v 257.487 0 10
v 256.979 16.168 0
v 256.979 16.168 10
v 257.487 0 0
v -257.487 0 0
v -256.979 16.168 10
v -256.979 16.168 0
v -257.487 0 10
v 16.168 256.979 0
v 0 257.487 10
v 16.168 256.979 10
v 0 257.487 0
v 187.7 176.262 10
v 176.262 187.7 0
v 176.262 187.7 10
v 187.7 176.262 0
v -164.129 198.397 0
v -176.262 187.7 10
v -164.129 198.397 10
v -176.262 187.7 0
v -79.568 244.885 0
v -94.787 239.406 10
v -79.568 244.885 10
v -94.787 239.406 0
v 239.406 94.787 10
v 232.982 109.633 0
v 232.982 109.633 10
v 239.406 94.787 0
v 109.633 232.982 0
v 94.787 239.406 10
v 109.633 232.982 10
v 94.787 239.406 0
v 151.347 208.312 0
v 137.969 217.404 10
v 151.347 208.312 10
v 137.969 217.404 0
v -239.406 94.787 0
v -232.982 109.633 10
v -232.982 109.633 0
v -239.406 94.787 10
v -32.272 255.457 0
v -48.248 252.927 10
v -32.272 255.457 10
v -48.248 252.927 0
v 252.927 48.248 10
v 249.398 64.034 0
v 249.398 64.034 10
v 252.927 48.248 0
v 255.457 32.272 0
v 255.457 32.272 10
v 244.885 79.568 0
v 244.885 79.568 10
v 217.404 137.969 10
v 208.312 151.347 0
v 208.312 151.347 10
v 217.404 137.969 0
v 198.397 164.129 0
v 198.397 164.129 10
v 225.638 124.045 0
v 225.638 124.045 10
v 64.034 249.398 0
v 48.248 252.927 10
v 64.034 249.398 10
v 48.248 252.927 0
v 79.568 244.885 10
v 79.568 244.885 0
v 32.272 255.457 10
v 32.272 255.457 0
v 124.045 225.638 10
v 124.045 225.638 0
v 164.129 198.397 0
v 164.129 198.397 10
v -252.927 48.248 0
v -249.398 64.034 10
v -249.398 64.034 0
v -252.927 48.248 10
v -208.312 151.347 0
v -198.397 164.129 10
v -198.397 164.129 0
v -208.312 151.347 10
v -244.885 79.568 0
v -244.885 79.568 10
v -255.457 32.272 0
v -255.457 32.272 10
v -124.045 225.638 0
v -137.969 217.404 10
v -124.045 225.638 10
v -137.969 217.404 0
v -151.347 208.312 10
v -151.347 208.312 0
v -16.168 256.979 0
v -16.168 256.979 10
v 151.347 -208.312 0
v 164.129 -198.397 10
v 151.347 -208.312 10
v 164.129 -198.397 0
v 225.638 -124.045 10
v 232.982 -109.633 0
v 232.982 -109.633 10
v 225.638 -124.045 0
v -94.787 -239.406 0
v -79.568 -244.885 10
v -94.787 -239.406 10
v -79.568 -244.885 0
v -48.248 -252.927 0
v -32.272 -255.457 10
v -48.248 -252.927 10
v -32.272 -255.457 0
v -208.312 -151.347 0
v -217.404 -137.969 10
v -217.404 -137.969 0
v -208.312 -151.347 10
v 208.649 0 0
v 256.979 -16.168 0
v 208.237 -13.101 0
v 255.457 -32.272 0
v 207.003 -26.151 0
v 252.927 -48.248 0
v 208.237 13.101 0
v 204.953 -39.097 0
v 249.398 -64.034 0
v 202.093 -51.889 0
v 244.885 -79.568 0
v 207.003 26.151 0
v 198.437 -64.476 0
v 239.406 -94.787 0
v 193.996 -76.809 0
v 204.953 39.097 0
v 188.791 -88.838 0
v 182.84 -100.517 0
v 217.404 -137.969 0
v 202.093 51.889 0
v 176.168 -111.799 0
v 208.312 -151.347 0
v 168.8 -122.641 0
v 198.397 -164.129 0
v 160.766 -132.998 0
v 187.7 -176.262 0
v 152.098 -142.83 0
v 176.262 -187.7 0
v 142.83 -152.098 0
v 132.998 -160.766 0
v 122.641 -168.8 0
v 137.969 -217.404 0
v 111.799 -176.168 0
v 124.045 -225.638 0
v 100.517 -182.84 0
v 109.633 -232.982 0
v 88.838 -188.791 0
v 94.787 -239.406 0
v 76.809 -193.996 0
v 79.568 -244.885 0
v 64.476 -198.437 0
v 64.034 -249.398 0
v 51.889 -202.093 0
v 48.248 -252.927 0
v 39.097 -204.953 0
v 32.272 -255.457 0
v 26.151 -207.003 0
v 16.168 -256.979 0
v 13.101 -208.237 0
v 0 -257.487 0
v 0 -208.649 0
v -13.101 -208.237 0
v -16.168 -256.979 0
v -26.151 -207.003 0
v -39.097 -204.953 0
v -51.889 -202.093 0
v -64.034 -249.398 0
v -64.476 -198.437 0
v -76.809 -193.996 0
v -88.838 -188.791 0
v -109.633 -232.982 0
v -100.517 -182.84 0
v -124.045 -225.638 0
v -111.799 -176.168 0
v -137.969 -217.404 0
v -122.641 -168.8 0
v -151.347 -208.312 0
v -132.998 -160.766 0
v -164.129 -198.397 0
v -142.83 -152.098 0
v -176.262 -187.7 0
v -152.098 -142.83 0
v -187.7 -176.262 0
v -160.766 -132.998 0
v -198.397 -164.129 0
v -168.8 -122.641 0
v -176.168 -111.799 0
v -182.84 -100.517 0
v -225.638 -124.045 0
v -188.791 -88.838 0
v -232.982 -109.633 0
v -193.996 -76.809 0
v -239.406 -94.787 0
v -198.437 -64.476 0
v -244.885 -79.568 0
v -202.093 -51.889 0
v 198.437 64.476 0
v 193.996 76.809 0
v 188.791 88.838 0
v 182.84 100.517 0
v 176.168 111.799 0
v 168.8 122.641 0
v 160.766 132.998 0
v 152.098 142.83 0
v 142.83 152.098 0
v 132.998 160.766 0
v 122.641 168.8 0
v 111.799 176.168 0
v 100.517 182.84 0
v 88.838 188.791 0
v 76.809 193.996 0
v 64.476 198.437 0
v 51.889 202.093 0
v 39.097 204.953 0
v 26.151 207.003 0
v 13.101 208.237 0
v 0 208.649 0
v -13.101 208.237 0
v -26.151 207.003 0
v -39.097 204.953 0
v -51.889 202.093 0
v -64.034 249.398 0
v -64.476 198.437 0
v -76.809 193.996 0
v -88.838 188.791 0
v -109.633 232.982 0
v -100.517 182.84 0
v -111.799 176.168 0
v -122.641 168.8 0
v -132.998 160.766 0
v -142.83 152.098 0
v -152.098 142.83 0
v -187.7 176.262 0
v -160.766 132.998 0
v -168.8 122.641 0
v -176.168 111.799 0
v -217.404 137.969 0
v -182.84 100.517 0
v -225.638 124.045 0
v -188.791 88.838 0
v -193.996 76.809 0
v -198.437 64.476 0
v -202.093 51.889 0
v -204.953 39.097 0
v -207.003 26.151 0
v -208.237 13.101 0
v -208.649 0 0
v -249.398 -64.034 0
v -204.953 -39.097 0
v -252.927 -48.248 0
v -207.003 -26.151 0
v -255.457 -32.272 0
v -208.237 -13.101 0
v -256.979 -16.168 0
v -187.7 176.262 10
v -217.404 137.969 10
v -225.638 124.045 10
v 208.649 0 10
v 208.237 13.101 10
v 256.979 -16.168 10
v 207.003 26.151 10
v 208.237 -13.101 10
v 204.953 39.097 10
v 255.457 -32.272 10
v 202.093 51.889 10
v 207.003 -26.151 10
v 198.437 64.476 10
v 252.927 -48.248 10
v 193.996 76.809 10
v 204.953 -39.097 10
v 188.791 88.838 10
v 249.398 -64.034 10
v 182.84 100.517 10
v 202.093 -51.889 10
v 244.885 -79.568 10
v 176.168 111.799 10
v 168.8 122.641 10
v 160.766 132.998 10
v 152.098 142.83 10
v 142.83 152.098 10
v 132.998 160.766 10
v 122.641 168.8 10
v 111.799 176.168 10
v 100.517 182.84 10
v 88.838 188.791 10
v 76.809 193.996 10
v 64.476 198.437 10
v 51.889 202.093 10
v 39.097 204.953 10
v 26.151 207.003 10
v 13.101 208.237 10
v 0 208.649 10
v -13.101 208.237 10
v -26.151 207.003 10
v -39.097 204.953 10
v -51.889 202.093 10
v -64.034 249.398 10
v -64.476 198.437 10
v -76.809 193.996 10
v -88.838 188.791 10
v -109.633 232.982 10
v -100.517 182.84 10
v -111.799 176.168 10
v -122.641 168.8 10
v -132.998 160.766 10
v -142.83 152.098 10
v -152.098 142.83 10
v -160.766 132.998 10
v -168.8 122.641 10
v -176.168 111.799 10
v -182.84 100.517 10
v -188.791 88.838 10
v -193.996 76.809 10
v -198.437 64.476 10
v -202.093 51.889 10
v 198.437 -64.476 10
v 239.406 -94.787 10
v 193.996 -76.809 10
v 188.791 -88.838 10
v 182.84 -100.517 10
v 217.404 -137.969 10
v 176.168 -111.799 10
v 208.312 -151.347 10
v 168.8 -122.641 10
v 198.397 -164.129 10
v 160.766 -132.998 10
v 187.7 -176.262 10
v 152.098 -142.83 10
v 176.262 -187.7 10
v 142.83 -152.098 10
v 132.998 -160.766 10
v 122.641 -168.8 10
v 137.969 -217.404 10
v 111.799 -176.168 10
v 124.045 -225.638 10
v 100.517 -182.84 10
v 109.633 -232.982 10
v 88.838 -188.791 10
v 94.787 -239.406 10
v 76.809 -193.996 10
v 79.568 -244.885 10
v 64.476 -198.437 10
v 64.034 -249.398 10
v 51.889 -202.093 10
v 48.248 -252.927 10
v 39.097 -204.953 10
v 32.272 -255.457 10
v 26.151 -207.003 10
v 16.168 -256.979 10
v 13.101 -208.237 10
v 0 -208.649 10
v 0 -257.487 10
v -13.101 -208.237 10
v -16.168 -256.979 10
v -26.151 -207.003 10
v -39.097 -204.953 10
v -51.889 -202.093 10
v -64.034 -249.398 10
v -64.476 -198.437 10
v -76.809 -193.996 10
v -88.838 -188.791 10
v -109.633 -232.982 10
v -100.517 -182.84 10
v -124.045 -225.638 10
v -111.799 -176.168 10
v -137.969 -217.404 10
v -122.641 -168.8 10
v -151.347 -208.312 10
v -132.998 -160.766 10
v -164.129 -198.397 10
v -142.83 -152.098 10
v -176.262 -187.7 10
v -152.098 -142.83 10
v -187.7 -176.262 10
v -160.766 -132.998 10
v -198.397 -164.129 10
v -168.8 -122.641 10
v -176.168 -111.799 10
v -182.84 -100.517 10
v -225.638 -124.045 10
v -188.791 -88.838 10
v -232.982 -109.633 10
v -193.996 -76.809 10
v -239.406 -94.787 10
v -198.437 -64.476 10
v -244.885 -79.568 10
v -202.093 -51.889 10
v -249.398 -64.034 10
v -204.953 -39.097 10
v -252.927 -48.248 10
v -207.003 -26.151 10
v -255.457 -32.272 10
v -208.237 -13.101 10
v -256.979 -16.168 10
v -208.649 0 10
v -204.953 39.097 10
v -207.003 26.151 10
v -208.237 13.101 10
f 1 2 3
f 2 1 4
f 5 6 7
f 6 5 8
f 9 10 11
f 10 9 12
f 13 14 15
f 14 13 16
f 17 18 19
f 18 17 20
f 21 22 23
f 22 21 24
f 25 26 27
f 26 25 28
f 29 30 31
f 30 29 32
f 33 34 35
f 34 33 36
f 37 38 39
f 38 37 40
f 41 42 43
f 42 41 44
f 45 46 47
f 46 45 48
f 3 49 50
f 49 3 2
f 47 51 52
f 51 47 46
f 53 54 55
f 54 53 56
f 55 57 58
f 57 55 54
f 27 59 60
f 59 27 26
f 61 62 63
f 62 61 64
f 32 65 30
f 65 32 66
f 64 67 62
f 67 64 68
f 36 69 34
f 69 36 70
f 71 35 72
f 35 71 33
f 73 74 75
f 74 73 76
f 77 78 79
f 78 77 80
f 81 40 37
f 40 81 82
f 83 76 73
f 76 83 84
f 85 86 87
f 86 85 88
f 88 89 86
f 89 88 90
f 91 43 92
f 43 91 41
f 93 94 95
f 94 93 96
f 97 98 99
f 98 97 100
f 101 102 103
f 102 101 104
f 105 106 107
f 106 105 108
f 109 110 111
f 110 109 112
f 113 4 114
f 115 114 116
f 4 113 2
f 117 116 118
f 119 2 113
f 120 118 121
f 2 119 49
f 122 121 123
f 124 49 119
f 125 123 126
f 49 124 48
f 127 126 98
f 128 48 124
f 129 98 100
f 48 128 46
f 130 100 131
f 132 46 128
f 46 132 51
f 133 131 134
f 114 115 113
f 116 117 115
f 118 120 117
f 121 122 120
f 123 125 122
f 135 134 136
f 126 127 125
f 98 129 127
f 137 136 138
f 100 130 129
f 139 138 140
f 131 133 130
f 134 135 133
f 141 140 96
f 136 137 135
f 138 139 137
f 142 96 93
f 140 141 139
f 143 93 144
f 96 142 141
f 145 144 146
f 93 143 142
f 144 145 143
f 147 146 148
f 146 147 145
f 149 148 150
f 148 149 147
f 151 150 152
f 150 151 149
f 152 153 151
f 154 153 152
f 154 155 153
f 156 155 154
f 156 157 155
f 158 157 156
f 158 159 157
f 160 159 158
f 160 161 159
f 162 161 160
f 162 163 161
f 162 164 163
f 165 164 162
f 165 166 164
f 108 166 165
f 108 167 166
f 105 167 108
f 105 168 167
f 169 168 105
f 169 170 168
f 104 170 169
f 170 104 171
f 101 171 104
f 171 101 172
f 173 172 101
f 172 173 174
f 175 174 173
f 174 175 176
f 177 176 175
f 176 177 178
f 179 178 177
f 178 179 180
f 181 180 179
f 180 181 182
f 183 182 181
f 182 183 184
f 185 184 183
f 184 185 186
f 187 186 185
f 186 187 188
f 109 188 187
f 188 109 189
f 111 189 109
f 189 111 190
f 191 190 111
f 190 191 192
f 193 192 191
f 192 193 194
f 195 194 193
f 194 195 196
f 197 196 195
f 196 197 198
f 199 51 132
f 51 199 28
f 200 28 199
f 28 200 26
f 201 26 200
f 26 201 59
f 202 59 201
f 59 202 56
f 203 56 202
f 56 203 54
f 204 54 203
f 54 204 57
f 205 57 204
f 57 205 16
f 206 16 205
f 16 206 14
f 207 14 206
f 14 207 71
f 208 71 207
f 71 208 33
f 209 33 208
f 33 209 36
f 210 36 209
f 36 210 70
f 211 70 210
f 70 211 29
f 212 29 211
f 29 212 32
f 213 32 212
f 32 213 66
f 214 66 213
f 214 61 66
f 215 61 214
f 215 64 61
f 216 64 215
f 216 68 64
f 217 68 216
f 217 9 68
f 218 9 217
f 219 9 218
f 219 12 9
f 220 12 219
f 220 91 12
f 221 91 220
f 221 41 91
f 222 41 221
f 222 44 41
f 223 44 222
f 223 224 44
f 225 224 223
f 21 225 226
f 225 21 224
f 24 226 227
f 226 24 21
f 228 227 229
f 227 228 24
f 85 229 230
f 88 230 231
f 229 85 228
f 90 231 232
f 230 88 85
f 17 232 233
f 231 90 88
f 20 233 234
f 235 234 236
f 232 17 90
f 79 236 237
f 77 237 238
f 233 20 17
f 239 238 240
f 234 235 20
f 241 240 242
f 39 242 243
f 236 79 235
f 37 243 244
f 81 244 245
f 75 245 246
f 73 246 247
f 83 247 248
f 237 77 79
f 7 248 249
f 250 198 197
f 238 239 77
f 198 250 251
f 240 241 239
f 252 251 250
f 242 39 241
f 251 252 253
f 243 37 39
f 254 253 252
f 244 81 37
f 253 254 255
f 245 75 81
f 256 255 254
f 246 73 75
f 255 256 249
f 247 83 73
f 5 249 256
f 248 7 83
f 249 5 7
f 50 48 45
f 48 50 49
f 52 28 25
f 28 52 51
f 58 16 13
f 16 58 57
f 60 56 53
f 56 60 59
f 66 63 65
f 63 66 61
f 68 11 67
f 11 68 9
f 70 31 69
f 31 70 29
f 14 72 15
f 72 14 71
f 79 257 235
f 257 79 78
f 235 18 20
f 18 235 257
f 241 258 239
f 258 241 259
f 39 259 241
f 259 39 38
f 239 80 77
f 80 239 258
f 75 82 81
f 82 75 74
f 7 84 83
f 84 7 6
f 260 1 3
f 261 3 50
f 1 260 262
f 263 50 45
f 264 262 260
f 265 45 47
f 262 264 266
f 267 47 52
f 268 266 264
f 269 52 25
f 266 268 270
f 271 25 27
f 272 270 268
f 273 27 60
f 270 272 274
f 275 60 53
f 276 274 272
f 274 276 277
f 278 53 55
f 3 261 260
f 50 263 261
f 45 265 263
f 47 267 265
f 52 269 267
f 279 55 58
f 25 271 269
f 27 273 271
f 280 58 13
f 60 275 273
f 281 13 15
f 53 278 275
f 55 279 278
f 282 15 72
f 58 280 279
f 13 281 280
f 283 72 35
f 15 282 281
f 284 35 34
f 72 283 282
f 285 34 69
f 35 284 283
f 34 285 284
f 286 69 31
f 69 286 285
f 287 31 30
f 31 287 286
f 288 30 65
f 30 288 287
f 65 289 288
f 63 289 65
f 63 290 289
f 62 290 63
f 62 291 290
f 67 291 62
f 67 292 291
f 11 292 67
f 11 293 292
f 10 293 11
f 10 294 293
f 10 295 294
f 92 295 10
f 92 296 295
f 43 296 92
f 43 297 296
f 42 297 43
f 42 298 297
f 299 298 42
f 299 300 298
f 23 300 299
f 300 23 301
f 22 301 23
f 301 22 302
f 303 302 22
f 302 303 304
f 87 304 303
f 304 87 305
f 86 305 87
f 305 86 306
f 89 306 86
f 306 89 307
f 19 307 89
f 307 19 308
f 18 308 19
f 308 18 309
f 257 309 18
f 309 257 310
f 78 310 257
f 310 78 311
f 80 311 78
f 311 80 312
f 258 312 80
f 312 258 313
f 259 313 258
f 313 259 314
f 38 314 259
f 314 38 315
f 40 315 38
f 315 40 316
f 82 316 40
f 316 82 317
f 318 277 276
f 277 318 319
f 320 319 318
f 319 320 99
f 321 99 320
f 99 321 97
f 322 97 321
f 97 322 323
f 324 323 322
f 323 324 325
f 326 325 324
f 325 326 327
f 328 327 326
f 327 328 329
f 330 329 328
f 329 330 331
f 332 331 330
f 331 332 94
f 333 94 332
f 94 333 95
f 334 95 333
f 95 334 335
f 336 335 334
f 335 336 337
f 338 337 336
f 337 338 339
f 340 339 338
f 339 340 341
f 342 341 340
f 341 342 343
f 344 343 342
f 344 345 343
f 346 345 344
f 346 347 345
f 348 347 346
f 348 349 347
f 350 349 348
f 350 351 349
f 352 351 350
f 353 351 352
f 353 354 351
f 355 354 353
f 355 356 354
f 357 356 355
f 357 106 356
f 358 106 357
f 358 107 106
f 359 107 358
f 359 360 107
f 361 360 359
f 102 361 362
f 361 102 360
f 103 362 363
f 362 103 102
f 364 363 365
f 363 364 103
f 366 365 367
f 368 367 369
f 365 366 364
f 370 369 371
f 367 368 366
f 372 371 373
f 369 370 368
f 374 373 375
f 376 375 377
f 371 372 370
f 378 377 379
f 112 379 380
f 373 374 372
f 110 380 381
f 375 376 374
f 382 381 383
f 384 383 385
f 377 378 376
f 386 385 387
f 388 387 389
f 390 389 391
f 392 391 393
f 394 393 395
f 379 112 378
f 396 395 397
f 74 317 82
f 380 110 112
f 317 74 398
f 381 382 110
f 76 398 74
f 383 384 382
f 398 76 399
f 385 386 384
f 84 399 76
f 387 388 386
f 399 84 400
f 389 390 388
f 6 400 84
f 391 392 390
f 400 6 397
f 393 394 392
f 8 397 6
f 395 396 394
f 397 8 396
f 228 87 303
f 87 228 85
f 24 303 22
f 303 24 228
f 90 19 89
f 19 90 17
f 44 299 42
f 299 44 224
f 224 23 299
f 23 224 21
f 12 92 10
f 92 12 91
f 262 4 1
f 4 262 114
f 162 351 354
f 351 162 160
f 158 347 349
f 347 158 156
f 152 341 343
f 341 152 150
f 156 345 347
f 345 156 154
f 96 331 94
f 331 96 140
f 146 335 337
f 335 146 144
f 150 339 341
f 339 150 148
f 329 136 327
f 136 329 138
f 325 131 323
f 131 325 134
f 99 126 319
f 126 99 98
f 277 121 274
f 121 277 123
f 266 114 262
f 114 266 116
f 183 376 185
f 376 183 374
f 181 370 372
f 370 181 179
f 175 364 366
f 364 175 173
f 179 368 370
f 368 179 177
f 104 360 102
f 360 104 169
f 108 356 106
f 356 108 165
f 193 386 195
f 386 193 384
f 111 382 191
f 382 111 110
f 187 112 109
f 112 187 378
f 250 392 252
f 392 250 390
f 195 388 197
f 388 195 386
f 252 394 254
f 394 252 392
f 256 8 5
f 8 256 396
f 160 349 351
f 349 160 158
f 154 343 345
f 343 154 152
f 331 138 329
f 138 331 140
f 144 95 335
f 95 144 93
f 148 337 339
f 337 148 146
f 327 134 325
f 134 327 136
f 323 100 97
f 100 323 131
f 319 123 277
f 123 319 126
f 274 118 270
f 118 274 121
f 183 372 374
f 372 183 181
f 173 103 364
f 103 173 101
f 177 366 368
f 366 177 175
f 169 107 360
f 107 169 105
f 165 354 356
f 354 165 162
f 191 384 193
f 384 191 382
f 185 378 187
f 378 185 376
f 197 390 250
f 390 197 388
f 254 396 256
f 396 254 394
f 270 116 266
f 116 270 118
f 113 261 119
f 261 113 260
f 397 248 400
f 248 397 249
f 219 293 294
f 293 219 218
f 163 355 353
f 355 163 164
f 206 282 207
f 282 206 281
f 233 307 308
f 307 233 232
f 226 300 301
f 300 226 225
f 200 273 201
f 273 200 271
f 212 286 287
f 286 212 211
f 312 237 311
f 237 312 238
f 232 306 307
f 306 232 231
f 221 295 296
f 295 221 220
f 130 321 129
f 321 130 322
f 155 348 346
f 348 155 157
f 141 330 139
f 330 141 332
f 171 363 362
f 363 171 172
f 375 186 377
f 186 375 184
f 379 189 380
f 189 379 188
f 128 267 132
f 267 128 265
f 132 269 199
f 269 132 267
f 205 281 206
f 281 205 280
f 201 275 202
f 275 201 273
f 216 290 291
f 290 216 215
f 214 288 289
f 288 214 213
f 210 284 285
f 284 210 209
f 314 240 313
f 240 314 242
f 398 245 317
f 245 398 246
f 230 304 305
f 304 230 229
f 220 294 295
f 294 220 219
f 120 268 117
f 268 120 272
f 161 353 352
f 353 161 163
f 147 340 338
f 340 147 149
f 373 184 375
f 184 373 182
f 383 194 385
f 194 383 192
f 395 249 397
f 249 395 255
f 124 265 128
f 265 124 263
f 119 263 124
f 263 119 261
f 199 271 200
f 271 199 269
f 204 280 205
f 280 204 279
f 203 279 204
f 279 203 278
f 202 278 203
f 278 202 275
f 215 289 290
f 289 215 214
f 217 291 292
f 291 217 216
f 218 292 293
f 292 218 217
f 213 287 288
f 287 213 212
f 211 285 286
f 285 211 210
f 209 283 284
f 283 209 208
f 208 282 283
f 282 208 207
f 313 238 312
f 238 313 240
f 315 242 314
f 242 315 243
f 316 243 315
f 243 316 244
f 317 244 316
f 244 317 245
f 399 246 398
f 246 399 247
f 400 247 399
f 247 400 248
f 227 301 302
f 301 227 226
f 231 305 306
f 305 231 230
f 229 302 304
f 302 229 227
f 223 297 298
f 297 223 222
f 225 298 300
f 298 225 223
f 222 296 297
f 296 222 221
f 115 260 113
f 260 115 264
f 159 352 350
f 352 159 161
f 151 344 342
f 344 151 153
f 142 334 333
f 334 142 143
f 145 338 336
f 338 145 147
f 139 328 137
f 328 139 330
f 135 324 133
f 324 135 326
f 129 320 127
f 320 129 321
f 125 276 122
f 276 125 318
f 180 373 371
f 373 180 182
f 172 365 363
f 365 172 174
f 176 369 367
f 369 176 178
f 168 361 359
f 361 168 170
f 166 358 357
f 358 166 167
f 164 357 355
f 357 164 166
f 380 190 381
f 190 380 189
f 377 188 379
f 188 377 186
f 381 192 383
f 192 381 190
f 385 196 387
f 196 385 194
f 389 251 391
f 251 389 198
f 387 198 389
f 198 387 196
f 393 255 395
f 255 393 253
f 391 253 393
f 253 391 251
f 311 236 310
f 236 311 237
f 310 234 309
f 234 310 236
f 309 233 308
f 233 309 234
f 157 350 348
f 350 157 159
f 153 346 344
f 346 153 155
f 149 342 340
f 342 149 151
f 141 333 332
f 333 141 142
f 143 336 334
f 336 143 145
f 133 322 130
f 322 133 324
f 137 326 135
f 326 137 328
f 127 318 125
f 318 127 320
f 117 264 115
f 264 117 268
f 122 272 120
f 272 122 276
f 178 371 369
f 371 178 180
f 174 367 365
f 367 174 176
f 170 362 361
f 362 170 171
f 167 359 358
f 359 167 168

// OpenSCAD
difference() {
	translate(v = [0, 0, 0]) {
		cylinder($fn = 100, d = 514.9747468306, h = 10);
	}
	translate(v = [0, 0, -0.0500000000]) {
		cylinder($fn = 100, d = 417.2970377067, h = 30.1000000000);
	}
}
